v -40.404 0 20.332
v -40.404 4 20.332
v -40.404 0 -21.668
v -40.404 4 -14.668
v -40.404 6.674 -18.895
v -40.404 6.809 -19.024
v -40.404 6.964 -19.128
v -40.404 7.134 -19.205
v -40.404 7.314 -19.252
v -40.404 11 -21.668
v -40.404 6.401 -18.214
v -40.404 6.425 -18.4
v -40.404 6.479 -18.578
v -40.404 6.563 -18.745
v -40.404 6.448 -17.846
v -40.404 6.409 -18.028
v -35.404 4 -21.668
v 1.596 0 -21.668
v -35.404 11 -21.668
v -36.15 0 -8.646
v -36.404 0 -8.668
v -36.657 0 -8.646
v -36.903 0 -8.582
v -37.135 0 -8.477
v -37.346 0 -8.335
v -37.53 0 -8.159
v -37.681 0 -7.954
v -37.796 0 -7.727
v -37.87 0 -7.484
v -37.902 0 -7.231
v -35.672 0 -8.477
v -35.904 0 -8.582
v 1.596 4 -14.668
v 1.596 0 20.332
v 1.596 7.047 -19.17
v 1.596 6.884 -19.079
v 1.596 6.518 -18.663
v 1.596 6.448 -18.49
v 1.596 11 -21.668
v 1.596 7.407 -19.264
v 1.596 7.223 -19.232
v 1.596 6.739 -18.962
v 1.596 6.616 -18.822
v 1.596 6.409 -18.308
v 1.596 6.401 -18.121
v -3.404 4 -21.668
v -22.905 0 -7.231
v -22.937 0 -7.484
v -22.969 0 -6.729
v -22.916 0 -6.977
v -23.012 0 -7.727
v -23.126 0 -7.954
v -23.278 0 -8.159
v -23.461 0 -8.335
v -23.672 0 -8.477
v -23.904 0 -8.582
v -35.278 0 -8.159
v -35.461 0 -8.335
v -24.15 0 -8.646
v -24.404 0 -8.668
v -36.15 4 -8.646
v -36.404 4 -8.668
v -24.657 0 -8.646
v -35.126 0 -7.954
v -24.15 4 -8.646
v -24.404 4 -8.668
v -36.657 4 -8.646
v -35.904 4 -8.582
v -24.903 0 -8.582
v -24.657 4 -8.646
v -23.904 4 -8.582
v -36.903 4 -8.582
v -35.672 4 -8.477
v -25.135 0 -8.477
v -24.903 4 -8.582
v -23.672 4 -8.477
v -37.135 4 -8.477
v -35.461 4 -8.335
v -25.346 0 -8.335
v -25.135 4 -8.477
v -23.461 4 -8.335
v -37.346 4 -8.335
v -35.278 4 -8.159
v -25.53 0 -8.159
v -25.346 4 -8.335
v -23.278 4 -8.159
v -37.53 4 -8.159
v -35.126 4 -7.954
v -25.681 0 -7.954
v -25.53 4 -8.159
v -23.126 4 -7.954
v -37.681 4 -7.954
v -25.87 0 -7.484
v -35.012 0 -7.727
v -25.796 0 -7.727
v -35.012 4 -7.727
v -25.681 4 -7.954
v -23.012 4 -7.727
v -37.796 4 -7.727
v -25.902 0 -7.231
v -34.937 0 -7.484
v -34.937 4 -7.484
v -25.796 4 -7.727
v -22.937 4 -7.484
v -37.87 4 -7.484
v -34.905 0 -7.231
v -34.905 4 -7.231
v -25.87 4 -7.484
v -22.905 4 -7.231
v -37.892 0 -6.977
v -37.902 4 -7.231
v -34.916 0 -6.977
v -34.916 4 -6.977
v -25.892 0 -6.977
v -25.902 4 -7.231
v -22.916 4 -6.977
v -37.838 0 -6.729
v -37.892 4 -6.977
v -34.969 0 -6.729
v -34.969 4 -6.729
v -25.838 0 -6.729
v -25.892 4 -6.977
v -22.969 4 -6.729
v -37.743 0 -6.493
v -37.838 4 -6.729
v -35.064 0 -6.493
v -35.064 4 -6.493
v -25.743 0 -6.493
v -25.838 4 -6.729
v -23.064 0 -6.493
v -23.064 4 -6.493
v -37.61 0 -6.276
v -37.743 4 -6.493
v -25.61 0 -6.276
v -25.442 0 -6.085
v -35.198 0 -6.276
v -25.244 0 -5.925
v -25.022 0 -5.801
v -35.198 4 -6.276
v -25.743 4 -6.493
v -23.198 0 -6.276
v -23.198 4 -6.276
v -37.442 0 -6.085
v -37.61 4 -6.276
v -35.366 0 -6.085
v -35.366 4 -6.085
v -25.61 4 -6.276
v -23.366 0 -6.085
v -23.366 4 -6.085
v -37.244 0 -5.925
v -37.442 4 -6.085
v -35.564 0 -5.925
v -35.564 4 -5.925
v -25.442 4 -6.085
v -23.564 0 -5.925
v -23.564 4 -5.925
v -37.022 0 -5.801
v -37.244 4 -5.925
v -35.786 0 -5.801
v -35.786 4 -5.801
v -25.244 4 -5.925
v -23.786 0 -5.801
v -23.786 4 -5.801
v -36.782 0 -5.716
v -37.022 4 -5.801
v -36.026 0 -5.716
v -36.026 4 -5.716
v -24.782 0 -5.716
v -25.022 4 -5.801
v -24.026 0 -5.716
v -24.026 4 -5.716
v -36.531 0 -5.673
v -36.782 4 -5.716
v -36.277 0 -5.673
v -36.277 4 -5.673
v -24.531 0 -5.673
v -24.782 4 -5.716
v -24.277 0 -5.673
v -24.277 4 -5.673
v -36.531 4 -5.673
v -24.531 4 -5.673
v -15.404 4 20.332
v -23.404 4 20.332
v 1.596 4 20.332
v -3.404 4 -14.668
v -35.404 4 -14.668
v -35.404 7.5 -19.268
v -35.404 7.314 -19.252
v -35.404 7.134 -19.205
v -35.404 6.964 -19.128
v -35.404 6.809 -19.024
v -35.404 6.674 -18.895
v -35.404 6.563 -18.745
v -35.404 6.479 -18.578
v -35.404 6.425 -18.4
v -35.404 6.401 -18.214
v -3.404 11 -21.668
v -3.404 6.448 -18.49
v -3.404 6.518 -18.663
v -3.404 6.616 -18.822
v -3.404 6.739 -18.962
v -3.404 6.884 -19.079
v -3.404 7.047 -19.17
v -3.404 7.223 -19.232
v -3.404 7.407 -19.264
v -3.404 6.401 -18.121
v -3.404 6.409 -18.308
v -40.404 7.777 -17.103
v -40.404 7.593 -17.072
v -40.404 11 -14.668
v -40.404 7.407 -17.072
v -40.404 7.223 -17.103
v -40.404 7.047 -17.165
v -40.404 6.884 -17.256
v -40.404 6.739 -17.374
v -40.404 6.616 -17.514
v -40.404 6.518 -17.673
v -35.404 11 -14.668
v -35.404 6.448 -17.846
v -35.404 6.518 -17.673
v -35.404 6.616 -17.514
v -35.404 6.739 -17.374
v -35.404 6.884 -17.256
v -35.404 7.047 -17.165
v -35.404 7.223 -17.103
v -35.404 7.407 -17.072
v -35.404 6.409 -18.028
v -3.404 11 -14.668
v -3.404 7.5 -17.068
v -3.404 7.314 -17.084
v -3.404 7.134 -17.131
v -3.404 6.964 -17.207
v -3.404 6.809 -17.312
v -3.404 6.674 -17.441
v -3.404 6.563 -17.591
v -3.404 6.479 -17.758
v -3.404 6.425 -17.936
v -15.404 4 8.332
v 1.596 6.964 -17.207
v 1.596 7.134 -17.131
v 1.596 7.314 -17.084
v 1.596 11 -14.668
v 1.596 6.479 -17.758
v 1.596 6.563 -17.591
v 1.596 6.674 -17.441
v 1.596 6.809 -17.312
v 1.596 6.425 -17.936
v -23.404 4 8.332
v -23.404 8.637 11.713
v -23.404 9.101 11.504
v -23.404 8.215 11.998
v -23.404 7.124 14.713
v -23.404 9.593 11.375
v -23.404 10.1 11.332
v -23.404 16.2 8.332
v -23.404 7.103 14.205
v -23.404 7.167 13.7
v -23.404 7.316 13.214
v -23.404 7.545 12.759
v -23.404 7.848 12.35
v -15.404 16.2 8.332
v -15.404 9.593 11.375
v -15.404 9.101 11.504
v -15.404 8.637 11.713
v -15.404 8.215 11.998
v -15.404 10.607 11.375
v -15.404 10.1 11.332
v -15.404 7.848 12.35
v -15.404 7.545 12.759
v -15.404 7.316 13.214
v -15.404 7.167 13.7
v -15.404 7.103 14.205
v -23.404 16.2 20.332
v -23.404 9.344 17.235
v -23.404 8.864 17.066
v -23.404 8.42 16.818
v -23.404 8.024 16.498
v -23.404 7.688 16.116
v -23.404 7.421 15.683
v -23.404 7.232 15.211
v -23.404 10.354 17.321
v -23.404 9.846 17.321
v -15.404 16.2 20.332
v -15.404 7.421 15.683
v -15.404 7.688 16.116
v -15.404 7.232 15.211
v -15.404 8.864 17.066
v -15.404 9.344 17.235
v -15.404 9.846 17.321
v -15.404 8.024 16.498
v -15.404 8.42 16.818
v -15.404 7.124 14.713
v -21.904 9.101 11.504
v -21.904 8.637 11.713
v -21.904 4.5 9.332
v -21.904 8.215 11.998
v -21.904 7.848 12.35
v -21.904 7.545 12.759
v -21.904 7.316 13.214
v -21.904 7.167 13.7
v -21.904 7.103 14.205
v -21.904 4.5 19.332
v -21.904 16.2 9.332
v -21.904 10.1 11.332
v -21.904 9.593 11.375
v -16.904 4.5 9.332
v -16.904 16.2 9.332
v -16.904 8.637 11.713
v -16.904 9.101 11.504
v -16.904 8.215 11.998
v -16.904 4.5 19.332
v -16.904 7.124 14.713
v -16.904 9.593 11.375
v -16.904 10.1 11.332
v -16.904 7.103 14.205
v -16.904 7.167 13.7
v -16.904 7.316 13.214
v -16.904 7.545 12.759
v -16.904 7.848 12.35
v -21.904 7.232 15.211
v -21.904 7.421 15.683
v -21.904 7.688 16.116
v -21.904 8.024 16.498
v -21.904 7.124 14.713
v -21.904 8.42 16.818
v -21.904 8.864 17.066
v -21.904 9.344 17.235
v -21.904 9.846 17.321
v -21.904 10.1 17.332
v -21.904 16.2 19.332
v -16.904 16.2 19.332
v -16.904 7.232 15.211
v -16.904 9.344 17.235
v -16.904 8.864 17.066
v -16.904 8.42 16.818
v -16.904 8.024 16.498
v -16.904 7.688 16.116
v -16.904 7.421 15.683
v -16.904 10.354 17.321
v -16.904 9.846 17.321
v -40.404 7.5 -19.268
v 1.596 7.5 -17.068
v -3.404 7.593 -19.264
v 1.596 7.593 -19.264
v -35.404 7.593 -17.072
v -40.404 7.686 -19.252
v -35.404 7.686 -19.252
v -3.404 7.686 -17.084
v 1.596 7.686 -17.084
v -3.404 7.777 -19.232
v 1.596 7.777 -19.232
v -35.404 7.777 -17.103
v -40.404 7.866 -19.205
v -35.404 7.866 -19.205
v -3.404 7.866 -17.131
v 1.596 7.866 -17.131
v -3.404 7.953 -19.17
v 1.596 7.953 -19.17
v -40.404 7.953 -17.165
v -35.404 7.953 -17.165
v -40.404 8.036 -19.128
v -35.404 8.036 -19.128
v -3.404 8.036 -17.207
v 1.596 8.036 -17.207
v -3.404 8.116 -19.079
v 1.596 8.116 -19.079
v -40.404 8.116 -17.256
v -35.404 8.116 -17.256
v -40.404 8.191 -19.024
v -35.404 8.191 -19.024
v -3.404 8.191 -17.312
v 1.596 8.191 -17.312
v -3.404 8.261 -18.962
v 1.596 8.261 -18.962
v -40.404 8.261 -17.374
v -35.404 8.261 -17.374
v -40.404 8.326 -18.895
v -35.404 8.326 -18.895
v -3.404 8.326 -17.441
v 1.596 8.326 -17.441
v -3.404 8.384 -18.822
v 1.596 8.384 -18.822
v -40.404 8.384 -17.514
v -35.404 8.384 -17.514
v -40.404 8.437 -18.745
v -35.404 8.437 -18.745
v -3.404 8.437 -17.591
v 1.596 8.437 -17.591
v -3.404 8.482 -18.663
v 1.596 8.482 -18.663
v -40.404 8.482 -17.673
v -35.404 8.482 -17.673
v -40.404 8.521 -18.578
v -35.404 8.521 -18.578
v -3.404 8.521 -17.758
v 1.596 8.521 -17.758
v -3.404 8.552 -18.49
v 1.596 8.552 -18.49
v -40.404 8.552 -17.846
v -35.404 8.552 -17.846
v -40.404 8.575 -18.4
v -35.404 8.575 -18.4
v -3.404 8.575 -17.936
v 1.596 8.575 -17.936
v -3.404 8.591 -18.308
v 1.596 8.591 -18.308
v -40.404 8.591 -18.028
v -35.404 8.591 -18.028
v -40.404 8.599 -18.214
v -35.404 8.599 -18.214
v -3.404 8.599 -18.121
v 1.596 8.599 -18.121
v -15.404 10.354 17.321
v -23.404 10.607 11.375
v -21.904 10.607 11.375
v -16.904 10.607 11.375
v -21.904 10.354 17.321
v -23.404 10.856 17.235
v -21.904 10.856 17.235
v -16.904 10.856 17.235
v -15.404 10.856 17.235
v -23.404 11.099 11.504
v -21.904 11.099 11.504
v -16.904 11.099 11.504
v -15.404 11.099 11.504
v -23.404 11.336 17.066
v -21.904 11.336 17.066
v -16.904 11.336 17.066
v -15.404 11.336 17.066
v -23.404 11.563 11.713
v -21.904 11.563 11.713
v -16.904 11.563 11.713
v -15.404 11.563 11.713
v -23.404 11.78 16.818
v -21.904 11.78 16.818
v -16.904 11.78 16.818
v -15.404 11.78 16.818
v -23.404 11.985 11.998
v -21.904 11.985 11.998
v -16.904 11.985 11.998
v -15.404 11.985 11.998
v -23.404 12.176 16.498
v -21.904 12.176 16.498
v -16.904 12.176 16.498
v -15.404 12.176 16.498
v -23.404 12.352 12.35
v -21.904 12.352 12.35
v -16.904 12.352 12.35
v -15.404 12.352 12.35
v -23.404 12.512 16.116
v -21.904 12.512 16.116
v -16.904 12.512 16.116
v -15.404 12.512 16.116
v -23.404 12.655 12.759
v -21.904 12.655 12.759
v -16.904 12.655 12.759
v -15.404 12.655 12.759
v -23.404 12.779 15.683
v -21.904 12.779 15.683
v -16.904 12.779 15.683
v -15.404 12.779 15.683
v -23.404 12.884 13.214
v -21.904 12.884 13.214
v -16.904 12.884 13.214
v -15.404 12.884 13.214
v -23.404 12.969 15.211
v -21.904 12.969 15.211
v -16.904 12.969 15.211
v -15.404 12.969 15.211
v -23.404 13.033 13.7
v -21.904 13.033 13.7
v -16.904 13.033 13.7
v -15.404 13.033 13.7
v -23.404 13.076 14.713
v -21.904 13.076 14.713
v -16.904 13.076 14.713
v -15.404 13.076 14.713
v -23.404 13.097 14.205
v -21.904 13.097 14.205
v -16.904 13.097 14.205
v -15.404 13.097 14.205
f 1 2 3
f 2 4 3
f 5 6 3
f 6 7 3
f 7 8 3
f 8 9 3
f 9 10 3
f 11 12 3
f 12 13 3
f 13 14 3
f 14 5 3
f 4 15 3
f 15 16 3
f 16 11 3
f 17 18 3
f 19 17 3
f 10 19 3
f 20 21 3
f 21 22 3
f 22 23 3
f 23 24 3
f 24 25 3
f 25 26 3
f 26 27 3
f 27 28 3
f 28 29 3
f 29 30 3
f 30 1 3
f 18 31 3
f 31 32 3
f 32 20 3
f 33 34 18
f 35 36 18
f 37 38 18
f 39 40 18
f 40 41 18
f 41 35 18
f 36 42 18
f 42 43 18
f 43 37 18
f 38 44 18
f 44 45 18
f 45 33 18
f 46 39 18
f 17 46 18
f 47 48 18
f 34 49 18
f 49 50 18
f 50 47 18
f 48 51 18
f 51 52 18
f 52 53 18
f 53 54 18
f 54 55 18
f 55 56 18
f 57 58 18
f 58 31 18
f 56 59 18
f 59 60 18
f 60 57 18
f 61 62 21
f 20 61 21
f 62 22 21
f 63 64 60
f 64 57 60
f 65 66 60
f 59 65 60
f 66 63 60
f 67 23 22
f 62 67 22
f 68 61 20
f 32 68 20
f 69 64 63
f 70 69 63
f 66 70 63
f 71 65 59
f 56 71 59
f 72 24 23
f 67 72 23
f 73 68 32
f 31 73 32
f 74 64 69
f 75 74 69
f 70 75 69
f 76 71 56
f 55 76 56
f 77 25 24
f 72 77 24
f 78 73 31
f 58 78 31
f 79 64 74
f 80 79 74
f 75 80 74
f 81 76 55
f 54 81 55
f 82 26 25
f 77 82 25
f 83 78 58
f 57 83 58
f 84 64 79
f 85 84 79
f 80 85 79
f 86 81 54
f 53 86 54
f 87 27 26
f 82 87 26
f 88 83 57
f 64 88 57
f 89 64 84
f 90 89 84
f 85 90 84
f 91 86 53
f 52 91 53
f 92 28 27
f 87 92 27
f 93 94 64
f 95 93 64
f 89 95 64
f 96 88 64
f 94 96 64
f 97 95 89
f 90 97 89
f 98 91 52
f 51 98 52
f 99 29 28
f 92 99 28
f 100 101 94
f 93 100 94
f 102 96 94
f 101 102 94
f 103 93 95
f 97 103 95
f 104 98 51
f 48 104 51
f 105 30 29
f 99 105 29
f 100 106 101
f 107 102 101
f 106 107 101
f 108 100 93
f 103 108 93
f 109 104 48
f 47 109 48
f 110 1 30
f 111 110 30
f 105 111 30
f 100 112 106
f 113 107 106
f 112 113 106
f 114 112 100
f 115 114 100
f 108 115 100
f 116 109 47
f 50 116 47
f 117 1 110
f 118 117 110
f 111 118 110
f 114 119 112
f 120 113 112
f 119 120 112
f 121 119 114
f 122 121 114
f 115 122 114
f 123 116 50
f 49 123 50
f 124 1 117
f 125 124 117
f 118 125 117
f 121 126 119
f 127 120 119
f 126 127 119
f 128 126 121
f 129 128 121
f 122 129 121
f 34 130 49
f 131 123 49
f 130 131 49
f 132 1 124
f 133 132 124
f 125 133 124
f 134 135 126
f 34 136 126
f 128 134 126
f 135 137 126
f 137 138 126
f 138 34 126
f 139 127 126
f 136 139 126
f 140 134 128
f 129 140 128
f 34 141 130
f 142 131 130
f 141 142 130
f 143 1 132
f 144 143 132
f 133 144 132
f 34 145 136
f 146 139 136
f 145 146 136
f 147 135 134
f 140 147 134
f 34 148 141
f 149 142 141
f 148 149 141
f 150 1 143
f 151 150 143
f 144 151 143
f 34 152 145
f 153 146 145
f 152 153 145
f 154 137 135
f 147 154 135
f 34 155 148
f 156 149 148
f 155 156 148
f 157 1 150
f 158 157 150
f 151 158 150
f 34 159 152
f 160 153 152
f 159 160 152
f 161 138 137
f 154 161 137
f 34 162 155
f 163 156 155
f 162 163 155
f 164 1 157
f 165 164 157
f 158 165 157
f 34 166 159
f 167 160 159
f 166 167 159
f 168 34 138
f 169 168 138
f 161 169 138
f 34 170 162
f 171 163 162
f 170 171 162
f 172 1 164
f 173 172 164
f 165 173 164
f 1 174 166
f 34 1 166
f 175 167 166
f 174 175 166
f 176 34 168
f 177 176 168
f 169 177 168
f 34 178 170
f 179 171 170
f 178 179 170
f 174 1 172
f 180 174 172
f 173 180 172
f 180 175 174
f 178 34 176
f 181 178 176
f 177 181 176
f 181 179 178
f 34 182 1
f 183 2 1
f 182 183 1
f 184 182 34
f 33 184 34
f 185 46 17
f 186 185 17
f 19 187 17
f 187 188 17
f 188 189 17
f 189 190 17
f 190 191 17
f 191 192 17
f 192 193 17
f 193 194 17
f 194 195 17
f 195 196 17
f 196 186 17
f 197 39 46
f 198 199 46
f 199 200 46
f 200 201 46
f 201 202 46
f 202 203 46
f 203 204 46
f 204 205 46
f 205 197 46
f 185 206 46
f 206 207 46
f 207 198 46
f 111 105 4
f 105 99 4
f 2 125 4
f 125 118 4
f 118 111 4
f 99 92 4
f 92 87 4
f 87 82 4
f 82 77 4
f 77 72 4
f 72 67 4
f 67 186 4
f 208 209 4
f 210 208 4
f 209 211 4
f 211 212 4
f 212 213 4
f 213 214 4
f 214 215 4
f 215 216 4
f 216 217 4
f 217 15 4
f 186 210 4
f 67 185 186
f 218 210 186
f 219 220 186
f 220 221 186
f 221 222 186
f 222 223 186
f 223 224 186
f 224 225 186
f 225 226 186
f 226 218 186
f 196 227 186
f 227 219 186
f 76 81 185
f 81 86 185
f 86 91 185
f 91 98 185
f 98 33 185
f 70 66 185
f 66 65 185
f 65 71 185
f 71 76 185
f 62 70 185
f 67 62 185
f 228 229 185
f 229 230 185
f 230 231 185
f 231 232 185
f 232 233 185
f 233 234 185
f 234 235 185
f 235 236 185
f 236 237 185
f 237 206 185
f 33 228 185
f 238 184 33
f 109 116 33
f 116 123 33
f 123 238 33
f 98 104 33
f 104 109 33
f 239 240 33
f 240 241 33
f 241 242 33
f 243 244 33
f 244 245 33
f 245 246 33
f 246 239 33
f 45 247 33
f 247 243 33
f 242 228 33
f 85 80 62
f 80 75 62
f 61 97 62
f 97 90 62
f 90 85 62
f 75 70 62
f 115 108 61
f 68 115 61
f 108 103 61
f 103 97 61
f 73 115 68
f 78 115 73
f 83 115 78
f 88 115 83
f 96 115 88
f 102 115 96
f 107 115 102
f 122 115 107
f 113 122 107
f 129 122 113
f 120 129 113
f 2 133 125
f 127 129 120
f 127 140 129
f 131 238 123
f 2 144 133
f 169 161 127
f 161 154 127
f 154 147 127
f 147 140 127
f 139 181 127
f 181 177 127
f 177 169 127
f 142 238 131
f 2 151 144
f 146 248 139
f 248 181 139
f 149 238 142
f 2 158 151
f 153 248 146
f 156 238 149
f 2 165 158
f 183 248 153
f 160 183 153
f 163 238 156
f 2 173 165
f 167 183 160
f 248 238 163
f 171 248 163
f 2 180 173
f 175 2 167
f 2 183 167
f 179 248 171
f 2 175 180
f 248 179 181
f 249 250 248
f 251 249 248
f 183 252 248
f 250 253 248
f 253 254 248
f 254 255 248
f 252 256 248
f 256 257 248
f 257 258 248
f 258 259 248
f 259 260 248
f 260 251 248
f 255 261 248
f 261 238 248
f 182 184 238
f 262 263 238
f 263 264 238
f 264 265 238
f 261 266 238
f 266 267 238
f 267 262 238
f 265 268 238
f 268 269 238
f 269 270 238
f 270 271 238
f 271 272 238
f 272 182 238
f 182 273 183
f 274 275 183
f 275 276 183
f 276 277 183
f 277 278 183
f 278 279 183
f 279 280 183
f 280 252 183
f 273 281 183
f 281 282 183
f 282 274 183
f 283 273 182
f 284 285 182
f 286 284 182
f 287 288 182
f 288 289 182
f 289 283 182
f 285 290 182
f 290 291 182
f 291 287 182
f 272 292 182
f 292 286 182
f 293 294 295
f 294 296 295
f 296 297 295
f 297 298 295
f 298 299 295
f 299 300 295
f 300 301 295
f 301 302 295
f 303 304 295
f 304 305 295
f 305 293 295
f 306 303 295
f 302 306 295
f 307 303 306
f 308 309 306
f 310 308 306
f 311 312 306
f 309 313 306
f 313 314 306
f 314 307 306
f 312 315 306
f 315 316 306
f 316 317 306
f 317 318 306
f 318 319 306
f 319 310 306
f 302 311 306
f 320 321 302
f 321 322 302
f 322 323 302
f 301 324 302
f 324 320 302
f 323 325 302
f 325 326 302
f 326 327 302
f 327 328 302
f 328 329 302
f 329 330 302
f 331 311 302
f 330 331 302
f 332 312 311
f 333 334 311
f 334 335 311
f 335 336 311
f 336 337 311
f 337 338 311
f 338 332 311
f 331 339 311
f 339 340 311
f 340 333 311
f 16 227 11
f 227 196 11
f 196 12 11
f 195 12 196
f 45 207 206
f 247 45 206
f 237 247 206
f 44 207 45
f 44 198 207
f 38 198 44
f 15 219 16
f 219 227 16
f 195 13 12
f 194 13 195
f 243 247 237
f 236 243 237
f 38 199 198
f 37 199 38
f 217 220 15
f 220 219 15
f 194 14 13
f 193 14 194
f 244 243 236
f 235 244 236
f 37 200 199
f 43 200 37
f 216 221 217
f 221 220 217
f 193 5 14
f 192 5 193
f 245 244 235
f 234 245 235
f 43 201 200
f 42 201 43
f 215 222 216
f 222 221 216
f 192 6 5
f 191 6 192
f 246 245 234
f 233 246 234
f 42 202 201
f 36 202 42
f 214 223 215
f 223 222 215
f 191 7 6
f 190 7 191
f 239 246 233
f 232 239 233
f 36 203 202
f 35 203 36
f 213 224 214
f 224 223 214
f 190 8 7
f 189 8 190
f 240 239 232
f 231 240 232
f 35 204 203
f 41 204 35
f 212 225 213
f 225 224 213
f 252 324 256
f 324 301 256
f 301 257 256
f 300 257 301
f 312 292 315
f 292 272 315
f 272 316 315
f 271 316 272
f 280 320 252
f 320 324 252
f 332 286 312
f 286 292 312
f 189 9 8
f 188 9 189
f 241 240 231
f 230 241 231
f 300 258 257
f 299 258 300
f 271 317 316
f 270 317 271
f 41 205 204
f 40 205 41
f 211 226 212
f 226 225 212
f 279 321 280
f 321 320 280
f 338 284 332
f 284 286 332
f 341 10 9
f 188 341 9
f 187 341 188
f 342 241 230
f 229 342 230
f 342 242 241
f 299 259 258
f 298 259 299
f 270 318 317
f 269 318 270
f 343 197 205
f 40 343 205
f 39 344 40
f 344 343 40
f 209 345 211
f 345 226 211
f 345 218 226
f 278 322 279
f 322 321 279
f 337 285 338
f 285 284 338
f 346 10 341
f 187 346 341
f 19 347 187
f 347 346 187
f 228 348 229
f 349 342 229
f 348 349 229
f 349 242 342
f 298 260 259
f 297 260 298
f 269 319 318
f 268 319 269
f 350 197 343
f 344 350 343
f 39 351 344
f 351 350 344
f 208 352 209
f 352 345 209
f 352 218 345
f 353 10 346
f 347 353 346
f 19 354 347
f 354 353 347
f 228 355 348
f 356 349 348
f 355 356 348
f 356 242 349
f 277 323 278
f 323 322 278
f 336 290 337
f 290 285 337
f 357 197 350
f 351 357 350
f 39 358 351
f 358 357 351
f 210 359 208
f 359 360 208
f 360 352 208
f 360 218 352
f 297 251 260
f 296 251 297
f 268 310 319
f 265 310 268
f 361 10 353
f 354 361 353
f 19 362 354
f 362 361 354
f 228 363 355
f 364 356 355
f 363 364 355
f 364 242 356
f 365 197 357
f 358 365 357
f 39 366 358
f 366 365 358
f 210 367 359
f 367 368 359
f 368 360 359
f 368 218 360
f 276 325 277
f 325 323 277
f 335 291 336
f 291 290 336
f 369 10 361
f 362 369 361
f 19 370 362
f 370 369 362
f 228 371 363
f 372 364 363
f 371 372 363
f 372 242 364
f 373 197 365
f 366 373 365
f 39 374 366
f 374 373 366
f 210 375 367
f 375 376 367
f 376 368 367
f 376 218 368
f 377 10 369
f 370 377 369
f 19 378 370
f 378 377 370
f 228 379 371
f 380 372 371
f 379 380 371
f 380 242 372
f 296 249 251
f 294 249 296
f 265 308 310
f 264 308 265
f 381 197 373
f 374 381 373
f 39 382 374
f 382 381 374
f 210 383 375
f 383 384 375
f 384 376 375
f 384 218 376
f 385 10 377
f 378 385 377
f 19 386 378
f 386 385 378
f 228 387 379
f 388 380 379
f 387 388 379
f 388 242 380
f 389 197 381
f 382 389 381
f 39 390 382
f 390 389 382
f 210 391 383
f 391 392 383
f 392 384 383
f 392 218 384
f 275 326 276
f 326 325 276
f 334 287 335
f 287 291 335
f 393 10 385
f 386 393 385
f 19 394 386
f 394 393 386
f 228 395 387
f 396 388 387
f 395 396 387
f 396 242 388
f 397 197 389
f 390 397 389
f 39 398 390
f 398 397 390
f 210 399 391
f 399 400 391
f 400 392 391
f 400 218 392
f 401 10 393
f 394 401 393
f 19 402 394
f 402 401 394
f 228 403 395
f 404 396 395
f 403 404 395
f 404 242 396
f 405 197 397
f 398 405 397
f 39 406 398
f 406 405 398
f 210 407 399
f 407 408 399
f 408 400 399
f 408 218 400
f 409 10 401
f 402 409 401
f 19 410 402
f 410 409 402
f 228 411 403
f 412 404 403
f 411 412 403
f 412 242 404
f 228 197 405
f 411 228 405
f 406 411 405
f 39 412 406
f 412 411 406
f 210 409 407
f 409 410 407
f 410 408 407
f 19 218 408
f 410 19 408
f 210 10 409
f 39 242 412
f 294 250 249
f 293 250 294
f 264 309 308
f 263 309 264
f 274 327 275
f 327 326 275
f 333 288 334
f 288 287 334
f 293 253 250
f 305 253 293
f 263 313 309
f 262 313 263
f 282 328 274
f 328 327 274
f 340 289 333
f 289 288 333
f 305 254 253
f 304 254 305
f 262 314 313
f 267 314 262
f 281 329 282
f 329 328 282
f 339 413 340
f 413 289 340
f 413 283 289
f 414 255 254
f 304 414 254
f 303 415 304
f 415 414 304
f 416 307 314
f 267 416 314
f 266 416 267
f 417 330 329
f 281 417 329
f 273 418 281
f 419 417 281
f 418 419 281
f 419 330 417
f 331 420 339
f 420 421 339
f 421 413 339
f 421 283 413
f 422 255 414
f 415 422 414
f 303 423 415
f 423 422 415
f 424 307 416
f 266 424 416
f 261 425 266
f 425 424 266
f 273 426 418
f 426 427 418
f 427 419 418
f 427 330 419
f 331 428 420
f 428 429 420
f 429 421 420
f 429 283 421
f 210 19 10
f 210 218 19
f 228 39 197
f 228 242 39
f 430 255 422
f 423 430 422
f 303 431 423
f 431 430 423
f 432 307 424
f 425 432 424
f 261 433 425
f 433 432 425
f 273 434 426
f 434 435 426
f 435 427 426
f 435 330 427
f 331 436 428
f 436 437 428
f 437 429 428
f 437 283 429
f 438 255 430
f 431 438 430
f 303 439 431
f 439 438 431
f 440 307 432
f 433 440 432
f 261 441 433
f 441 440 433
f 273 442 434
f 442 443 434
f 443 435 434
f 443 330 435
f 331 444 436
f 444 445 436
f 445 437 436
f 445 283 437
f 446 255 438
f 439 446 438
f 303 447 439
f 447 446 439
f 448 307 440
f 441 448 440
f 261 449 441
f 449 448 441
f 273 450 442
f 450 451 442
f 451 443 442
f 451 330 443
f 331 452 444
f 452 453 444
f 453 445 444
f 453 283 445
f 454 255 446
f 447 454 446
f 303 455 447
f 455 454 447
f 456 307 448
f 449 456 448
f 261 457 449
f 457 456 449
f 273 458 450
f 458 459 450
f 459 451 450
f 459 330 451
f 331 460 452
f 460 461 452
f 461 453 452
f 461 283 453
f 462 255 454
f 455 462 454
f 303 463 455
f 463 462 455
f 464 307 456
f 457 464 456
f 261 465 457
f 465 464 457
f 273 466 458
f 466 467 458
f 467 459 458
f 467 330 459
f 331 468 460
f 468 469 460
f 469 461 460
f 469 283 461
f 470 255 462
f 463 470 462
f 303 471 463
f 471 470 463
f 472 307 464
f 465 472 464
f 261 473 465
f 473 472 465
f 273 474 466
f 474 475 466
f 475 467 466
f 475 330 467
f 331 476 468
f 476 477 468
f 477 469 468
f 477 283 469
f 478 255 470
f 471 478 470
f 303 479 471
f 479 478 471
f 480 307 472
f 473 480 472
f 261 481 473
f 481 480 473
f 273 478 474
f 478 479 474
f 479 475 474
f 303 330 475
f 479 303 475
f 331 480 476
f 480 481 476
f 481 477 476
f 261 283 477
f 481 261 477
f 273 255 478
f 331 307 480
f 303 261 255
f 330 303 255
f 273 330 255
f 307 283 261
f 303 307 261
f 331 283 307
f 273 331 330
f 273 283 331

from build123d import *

# Parameters (mm, degrees)
SKETCH2_W           = 42
SKETCH2_H           = 42
BOSS_EXTRUDE1_DEPTH = 4
SKETCH4_W           = 5
SKETCH4_H           = 7
BOSS_EXTRUDE2_DEPTH = 7
SKETCH5_R           = 1.1
CUT_EXTRUDE2_DEPTH  = 5
SKETCH6_R           = 1.1
CUT_EXTRUDE3_DEPTH  = 5
SKETCH8_R           = 1.5
CUT_EXTRUDE5_DEPTH  = 4
SKETCH9_W           = 8
SKETCH9_H           = 12
BOSS_EXTRUDE3_DEPTH = 12.2
SKETCH10_W          = 5
SKETCH10_H          = 10
CUT_EXTRUDE6_DEPTH  = 11.7
SKETCH12_R          = 3
CUT_EXTRUDE7_DEPTH  = 8


with BuildPart() as part:
    # Sketch2 → Boss-Extrude1 (new body)
    with BuildSketch(Plane(origin=(0, 0, 0), x_dir=(1, 0, 0), z_dir=(0, 1, 0))):
        with Locations((-19.403711124, 0.667809886)):
            Rectangle(SKETCH2_W, SKETCH2_H)
    extrude(amount=BOSS_EXTRUDE1_DEPTH)

    # Sketch4 → Boss-Extrude2 (add)
    with BuildSketch(Plane(origin=(0, 4, 0), x_dir=(1, 0, 0), z_dir=(0, 1, 0))):
        with Locations((-37.903711124, 18.167809886)):
            Rectangle(SKETCH4_W, SKETCH4_H)
        with Locations((-0.903711124, 18.167809886)):
            Rectangle(SKETCH4_W, SKETCH4_H)
    extrude(amount=BOSS_EXTRUDE2_DEPTH)

    # Sketch5 → Cut-Extrude2 (cut)
    with BuildSketch(Plane(origin=(-35.403711124, 0, 0), x_dir=(0, 0, -1), z_dir=(1, 0, 0))):
        with Locations((18.167809886, 7.5)):
            Circle(SKETCH5_R)
    extrude(amount=-CUT_EXTRUDE2_DEPTH, mode=Mode.SUBTRACT)

    # Sketch6 → Cut-Extrude3 (cut)
    with BuildSketch(Plane.ZY.offset(3.403711124)):
        with Locations((-18.167809886, 7.5)):
            Circle(SKETCH6_R)
    extrude(amount=-CUT_EXTRUDE3_DEPTH, mode=Mode.SUBTRACT)

    # Sketch8 → Cut-Extrude5 (cut)
    with BuildSketch(Plane.XZ):
        with Locations((-36.403711124, -7.167809886)):
            Circle(SKETCH8_R)
        with Locations((-24.403711124, -7.167809886)):
            Circle(SKETCH8_R)
    extrude(amount=-CUT_EXTRUDE5_DEPTH, mode=Mode.SUBTRACT)

    # Sketch9 → Boss-Extrude3 (add)
    with BuildSketch(Plane(origin=(0, 4, 0), x_dir=(1, 0, 0), z_dir=(0, 1, 0))):
        with Locations((-19.403711124, -14.332190114)):
            Rectangle(SKETCH9_W, SKETCH9_H)
    extrude(amount=BOSS_EXTRUDE3_DEPTH)

    # Sketch10 → Cut-Extrude6 (cut)
    with BuildSketch(Plane(origin=(0, 16.2, 0), x_dir=(1, 0, 0), z_dir=(0, 1, 0))):
        with Locations((-19.403711124, -14.332190114)):
            Rectangle(SKETCH10_W, SKETCH10_H)
    extrude(amount=-CUT_EXTRUDE6_DEPTH, mode=Mode.SUBTRACT)

    # Sketch12 → Cut-Extrude7 (cut)
    with BuildSketch(Plane(origin=(-15.403711124, 0, 0), x_dir=(0, 0, -1), z_dir=(1, 0, 0))):
        with Locations((-14.332190114, 10.1)):
            Circle(SKETCH12_R)
    extrude(amount=-CUT_EXTRUDE7_DEPTH, mode=Mode.SUBTRACT)


solid = part.part
